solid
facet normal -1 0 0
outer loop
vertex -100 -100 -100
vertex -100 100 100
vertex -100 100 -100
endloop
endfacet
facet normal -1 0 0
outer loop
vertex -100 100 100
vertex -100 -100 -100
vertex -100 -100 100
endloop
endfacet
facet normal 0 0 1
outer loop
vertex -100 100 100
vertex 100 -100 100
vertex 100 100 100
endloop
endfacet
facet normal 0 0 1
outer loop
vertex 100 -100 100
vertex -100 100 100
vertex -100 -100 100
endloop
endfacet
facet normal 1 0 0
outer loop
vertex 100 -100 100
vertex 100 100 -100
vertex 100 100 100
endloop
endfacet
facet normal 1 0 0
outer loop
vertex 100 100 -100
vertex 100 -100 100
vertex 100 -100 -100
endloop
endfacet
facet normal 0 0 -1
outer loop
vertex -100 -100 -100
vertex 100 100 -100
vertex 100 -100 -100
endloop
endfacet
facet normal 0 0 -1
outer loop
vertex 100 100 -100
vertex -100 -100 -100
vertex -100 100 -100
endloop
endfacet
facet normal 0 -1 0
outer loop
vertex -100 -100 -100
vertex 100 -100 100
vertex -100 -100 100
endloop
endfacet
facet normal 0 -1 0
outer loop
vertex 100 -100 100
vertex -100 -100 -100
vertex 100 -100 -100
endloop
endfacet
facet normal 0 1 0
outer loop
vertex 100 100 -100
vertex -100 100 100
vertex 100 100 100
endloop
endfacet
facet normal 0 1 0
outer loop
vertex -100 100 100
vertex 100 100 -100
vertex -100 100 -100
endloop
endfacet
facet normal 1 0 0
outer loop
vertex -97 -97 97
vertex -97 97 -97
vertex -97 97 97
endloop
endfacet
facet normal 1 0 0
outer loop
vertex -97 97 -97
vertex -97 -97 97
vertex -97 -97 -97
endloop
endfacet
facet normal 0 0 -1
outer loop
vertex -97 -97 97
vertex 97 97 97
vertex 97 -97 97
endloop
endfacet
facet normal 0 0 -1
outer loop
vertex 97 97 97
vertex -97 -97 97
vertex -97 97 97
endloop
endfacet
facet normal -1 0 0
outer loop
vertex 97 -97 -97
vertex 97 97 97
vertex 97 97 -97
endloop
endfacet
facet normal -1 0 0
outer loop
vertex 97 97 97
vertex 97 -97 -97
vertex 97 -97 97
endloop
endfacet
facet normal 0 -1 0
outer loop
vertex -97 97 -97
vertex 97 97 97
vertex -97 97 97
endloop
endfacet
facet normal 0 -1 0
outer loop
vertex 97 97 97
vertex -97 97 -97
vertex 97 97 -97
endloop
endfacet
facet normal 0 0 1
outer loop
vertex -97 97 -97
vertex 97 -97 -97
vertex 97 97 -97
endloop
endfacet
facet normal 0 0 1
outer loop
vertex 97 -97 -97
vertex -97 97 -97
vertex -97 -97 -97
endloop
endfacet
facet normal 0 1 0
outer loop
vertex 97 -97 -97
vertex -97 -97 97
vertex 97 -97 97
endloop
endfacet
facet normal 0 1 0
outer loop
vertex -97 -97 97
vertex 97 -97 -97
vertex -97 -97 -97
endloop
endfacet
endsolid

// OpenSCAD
// Outer cube size
outer_size = 200;
// Wall thickness
wall_thickness = 3;

// Create outer cube
difference() {
    cube(outer_size, center=true);
    // Subtract inner cube to hollow out
    cube(outer_size - 2*wall_thickness, center=true);
}
